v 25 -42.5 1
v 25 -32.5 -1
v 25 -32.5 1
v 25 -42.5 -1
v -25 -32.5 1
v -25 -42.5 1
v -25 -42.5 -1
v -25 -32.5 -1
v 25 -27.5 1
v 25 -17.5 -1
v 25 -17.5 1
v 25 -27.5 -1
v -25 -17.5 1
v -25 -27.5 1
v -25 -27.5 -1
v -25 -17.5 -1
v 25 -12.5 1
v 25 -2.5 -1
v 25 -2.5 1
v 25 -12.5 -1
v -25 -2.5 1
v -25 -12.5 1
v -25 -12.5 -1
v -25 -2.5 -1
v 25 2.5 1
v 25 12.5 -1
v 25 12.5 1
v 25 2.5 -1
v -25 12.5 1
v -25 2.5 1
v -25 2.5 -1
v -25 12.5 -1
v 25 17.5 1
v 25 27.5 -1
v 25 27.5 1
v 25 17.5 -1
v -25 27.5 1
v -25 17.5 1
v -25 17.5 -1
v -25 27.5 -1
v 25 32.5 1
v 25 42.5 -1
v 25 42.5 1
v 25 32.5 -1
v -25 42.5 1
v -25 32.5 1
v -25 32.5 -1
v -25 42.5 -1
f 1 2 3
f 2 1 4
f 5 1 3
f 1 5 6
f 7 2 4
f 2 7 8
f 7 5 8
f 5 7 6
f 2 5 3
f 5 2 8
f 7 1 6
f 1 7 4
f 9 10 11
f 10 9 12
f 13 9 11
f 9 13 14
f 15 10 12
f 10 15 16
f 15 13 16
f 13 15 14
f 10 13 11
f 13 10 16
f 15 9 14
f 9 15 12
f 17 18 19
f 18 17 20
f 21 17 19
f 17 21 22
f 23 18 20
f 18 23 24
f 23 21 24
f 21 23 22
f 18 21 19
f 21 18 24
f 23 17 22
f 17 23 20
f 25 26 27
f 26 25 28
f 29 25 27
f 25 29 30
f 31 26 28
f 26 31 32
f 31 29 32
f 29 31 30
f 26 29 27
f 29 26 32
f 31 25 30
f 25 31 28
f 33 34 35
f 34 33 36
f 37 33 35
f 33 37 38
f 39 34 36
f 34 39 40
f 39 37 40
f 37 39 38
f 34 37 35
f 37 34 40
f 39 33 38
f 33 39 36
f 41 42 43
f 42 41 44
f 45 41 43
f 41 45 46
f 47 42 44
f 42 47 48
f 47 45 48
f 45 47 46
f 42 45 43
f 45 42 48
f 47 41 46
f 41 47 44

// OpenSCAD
// Parameters for the rectangular plate
plate_length = 50;  // Length of the plate
plate_width = 10;   // Width of the plate
plate_thickness = 2; // Thickness of the plate
spacing = 15;       // Spacing between plates

// Function to create a rectangular plate
module rectangular_plate() {
    cube([plate_length, plate_width, plate_thickness], center = true);
}

// Generate the six rectangular plates in the same vertical layer
// Adjusted to ensure plates are parallel, evenly spaced, and at the same height
translate([0, -spacing * 2.5, 0]) rectangular_plate(); // Plate 1
translate([0, -spacing * 1.5, 0]) rectangular_plate(); // Plate 2
translate([0, -spacing * 0.5, 0]) rectangular_plate(); // Plate 3
translate([0, spacing * 0.5, 0]) rectangular_plate();  // Plate 4
translate([0, spacing * 1.5, 0]) rectangular_plate();  // Plate 5
translate([0, spacing * 2.5, 0]) rectangular_plate();  // Plate 6
